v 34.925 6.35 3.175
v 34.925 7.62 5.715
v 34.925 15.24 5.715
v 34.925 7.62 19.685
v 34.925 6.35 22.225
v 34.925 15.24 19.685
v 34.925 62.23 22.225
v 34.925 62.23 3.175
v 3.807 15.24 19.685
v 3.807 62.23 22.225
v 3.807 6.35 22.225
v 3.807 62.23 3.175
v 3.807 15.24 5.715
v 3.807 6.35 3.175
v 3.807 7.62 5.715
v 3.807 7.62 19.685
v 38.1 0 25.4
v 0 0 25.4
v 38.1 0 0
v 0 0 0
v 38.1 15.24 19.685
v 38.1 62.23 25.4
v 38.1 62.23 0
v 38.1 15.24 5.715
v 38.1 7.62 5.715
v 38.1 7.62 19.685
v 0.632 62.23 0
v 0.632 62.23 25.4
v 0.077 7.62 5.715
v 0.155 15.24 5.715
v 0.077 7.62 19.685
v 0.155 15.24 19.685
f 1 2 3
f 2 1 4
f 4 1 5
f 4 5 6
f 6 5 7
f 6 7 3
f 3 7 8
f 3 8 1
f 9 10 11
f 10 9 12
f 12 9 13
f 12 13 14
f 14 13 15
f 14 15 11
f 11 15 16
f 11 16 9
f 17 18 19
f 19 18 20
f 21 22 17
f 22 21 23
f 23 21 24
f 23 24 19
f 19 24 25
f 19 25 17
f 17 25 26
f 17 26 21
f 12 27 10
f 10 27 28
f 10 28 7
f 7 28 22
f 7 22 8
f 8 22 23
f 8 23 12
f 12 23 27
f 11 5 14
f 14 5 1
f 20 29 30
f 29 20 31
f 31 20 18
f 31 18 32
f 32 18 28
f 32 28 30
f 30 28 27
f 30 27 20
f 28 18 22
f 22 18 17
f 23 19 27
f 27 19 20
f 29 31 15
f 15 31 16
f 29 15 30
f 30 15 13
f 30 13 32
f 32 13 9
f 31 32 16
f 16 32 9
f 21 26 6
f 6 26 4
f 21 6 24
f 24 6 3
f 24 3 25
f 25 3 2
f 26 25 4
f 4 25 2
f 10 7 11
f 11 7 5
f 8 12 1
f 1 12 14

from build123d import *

# Parameters (mm, degrees)
BOSS_EXTRUDE1_DEPTH = 25.4
SKETCH3_W           = 13.97
SKETCH3_H           = 7.62
CUT_EXTRUDE1_DEPTH  = 78.261522765
SKETCH4_W           = 31.117855917
SKETCH4_H           = 3.175
BOSS_EXTRUDE2_DEPTH = 55.88


with BuildPart() as part:
    # Sketch2 → Boss-Extrude1 (new body)
    with BuildSketch(Plane.XY):
        Polygon((0, 0), (0.632144083, 62.23), (3.807144083, 62.23), (3.807144083, 6.35), (34.925, 6.35), (34.925, 62.23), (38.1, 62.23), (38.1, 0), align=None)
    extrude(amount=BOSS_EXTRUDE1_DEPTH)

    # Sketch3 → Cut-Extrude1 (cut, through all)
    with BuildSketch(Plane(origin=(38.1, 0, 0), x_dir=(0, 0, -1), z_dir=(1, 0, 0))):
        with Locations((-12.7, 11.43)):
            Rectangle(SKETCH3_W, SKETCH3_H)
    extrude(amount=-CUT_EXTRUDE1_DEPTH, mode=Mode.SUBTRACT)

    # Sketch4 → Boss-Extrude2 (add)
    with BuildSketch(Plane(origin=(0, 6.35, 0), x_dir=(1, 0, 0), z_dir=(0, 1, 0))):
        with Locations((19.366072042, -1.5875)):
            Rectangle(SKETCH4_W, SKETCH4_H)
        with Locations((19.366072042, -23.8125)):
            Rectangle(SKETCH4_W, SKETCH4_H)
    extrude(amount=BOSS_EXTRUDE2_DEPTH)


solid = part.part
